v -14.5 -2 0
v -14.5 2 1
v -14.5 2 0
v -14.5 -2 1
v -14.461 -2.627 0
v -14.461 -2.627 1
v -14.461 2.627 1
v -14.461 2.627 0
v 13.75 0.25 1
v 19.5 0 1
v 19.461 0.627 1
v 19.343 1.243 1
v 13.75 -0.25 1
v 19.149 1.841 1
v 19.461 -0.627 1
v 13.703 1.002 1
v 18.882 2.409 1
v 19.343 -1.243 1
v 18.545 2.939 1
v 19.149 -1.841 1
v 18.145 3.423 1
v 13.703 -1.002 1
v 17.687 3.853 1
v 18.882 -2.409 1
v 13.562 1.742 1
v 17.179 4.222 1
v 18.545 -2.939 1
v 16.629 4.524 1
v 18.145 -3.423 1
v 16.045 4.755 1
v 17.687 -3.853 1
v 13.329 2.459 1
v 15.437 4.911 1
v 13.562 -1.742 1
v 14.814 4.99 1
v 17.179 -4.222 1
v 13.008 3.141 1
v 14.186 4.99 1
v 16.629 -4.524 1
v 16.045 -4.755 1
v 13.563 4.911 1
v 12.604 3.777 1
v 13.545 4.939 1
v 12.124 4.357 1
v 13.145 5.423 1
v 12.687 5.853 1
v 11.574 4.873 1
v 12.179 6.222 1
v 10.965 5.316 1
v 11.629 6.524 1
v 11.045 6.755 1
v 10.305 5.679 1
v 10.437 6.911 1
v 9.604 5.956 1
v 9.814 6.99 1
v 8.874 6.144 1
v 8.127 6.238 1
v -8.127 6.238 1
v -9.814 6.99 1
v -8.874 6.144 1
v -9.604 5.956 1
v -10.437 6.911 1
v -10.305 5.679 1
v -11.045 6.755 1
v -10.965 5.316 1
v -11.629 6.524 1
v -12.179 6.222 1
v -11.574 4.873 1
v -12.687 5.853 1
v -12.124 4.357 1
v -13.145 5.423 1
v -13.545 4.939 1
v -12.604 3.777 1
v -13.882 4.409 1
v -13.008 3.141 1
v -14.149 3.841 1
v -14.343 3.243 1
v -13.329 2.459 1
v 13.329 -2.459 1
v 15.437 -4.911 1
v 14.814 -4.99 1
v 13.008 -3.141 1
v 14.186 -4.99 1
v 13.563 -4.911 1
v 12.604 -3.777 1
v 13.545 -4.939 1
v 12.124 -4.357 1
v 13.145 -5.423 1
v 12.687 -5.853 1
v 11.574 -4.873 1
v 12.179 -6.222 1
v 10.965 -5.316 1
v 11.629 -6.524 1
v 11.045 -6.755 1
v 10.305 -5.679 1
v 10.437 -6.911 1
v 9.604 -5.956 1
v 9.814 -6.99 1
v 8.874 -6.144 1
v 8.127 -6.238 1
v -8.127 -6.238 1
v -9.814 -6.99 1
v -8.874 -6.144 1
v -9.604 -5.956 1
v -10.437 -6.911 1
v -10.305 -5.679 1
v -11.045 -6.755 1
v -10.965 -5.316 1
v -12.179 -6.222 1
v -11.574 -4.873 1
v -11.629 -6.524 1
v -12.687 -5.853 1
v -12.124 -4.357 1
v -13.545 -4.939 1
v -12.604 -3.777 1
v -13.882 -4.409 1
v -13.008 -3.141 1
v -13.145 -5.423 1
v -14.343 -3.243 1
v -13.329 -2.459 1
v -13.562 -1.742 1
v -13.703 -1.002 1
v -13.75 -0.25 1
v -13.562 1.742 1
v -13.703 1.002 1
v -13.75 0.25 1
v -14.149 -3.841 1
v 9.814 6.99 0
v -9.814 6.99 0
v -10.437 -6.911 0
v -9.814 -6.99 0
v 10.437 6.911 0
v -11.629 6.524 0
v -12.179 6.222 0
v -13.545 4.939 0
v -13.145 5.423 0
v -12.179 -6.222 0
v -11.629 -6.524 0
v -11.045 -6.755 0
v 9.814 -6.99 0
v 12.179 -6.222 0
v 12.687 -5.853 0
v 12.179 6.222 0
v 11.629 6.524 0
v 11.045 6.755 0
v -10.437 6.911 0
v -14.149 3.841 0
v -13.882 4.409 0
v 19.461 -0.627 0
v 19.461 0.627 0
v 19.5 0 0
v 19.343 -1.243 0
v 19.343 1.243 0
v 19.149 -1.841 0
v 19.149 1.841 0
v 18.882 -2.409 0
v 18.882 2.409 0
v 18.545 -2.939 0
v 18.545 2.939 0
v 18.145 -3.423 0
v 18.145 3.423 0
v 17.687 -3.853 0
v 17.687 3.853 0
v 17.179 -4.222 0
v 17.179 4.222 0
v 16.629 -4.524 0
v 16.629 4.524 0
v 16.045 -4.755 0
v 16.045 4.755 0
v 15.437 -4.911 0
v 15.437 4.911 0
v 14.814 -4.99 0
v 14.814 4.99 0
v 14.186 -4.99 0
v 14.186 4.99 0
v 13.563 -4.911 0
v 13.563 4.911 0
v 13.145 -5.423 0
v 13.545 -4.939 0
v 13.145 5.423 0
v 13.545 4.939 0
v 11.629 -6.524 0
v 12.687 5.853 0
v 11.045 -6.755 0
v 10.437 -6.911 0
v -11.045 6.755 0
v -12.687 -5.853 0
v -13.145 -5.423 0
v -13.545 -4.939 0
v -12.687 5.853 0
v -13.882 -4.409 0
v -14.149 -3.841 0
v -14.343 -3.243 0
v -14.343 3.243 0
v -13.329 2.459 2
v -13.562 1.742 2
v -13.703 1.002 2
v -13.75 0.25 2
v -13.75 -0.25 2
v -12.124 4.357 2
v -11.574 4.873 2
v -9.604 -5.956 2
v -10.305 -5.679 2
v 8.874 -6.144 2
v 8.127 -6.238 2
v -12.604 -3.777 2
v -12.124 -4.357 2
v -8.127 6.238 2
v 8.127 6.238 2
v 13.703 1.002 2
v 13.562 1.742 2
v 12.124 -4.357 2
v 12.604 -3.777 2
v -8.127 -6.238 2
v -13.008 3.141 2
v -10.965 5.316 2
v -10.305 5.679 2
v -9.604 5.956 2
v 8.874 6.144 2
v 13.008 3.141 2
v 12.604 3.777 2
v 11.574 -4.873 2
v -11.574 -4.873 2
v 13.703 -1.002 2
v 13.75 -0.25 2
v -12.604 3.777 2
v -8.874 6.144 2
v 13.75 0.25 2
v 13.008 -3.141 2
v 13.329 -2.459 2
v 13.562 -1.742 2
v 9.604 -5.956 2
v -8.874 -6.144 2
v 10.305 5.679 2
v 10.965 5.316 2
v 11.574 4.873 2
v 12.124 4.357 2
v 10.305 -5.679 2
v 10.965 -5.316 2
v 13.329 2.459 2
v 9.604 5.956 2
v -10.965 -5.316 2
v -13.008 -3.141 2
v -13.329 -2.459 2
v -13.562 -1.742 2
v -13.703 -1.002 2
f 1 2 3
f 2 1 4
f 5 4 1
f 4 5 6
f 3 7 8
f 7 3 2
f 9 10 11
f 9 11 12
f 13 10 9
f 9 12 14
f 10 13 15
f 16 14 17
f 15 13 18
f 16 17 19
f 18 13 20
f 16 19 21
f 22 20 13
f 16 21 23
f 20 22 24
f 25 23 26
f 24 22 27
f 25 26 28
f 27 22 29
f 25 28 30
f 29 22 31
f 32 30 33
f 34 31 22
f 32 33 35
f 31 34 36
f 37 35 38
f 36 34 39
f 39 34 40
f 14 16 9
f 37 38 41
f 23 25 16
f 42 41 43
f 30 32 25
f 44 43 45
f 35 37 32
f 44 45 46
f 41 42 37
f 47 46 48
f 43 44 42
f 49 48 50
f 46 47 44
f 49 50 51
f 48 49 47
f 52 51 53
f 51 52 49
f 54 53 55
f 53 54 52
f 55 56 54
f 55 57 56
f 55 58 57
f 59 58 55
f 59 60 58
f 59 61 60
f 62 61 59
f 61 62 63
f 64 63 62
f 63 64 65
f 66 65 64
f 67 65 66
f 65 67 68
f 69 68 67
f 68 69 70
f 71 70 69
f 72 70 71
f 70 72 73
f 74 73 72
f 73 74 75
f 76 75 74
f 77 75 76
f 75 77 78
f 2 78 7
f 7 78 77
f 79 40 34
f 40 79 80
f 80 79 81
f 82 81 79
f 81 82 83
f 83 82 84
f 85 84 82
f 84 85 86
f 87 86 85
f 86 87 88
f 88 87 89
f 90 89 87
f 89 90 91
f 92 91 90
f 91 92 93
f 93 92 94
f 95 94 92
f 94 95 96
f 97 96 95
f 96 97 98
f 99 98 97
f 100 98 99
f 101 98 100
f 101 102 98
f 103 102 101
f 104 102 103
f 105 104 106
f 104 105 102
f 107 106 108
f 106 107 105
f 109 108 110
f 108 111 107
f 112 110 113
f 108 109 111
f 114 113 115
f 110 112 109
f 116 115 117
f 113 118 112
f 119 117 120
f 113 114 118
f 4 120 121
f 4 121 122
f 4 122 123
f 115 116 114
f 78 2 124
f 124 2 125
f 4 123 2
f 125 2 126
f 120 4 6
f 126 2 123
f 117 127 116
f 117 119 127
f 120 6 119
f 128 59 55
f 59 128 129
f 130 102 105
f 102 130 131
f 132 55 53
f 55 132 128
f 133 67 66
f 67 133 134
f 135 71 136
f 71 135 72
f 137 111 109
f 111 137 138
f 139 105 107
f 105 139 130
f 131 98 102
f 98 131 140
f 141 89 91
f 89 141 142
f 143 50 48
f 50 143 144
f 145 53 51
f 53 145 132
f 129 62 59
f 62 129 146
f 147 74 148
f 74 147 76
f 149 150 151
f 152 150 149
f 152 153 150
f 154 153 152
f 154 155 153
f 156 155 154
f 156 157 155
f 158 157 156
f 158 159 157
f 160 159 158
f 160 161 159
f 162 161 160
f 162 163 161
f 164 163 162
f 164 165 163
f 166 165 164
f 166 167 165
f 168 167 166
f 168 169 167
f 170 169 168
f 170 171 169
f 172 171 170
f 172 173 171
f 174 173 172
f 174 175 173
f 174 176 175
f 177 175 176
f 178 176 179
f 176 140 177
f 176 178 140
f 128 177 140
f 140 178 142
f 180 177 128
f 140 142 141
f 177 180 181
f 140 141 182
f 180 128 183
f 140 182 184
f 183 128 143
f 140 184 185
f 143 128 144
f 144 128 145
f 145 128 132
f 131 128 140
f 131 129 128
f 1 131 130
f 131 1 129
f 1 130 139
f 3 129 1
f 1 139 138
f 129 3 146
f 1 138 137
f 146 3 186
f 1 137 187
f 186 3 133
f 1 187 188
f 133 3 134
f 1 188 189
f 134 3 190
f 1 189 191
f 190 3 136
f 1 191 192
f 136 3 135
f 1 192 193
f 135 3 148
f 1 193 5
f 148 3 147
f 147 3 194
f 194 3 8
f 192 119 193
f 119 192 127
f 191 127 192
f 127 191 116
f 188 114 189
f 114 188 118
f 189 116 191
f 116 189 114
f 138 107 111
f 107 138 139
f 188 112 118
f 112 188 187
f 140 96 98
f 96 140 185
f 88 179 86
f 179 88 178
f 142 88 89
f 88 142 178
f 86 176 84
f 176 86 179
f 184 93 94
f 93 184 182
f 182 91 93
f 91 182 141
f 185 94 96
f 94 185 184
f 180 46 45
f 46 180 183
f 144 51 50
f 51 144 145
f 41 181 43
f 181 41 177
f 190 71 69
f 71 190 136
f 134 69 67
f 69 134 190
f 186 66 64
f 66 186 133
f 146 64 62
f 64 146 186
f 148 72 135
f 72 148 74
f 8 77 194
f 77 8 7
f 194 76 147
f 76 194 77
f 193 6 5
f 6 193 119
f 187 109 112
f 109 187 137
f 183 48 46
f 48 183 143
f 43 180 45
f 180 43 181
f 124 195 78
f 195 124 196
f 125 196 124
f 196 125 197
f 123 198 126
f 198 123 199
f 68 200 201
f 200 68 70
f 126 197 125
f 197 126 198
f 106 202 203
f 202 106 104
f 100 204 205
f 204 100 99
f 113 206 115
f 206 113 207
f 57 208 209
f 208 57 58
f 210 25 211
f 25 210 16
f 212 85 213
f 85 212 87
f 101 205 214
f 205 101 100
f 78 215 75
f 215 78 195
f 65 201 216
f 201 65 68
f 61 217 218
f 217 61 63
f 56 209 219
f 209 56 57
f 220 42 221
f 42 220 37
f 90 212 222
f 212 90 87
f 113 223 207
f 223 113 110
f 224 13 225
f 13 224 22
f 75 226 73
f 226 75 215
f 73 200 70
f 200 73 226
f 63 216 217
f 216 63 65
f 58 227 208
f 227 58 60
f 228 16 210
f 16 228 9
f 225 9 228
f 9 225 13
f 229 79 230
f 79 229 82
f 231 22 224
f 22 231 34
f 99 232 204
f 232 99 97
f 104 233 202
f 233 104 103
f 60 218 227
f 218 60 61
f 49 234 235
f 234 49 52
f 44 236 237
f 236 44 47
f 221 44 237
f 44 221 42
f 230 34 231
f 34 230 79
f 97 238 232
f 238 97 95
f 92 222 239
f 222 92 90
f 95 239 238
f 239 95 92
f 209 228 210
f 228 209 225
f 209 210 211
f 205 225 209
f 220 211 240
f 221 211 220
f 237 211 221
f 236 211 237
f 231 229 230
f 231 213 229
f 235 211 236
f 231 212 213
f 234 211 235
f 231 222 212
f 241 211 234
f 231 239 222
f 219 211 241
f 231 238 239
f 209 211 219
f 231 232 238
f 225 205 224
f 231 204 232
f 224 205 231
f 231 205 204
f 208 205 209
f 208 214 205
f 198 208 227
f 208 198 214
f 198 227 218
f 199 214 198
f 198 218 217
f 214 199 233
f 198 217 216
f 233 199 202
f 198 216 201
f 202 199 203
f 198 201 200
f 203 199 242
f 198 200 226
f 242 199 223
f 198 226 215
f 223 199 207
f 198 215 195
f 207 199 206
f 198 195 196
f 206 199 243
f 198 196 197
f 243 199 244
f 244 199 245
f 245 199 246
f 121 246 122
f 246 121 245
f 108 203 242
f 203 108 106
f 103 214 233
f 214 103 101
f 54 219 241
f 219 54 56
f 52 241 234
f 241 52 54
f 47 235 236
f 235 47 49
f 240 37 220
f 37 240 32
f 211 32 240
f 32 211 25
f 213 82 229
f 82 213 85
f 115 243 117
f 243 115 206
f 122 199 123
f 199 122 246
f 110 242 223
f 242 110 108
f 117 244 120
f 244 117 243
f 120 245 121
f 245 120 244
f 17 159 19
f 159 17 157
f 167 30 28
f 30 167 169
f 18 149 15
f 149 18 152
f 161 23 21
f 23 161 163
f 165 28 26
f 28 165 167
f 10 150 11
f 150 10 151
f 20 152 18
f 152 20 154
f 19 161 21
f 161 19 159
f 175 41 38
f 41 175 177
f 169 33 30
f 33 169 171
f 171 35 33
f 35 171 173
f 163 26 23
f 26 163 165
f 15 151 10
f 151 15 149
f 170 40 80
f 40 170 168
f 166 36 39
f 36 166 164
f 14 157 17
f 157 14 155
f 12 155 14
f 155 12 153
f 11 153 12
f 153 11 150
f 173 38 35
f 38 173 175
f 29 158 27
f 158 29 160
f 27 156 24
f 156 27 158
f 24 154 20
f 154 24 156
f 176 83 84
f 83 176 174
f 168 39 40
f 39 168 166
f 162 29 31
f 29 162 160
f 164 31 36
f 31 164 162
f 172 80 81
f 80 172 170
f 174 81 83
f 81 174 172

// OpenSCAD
$fn = 50;


difference() {
	union() {
		translate(v = [0, 0, 0]) {
			rotate(a = [0, 0, 0]) {
				hull() {
					translate(v = [-9.5000000000, 2.0000000000, 0]) {
						rotate(a = [0, 0, 0]) {
							translate(v = [0, 0, 0]) {
								rotate(a = [0, 0, 0]) {
									cylinder(h = 1, r = 5);
								}
							}
						}
					}
					translate(v = [9.5000000000, 2.0000000000, 0]) {
						rotate(a = [0, 0, 0]) {
							translate(v = [0, 0, 0]) {
								rotate(a = [0, 0, 0]) {
									cylinder(h = 1, r = 5);
								}
							}
						}
					}
					translate(v = [-9.5000000000, -2.0000000000, 0]) {
						rotate(a = [0, 0, 0]) {
							translate(v = [0, 0, 0]) {
								rotate(a = [0, 0, 0]) {
									cylinder(h = 1, r = 5);
								}
							}
						}
					}
					translate(v = [9.5000000000, -2.0000000000, 0]) {
						rotate(a = [0, 0, 0]) {
							translate(v = [0, 0, 0]) {
								rotate(a = [0, 0, 0]) {
									cylinder(h = 1, r = 5);
								}
							}
						}
					}
				}
			}
		}
		translate(v = [0, 0, 0]) {
			rotate(a = [0, 0, 0]) {
				hull() {
					translate(v = [-7.7500000000, 0.2500000000, 0]) {
						rotate(a = [0, 0, 0]) {
							translate(v = [0, 0, 0]) {
								rotate(a = [0, 0, 0]) {
									cylinder(h = 2, r = 6);
								}
							}
						}
					}
					translate(v = [7.7500000000, 0.2500000000, 0]) {
						rotate(a = [0, 0, 0]) {
							translate(v = [0, 0, 0]) {
								rotate(a = [0, 0, 0]) {
									cylinder(h = 2, r = 6);
								}
							}
						}
					}
					translate(v = [-7.7500000000, -0.2500000000, 0]) {
						rotate(a = [0, 0, 0]) {
							translate(v = [0, 0, 0]) {
								rotate(a = [0, 0, 0]) {
									cylinder(h = 2, r = 6);
								}
							}
						}
					}
					translate(v = [7.7500000000, -0.2500000000, 0]) {
						rotate(a = [0, 0, 0]) {
							translate(v = [0, 0, 0]) {
								rotate(a = [0, 0, 0]) {
									cylinder(h = 2, r = 6);
								}
							}
						}
					}
				}
			}
		}
		translate(v = [14.5000000000, 0, 0.0000000000]) {
			rotate(a = [0, 0, 0]) {
				cylinder(h = 1, r = 5);
			}
		}
	}
	union();
}
